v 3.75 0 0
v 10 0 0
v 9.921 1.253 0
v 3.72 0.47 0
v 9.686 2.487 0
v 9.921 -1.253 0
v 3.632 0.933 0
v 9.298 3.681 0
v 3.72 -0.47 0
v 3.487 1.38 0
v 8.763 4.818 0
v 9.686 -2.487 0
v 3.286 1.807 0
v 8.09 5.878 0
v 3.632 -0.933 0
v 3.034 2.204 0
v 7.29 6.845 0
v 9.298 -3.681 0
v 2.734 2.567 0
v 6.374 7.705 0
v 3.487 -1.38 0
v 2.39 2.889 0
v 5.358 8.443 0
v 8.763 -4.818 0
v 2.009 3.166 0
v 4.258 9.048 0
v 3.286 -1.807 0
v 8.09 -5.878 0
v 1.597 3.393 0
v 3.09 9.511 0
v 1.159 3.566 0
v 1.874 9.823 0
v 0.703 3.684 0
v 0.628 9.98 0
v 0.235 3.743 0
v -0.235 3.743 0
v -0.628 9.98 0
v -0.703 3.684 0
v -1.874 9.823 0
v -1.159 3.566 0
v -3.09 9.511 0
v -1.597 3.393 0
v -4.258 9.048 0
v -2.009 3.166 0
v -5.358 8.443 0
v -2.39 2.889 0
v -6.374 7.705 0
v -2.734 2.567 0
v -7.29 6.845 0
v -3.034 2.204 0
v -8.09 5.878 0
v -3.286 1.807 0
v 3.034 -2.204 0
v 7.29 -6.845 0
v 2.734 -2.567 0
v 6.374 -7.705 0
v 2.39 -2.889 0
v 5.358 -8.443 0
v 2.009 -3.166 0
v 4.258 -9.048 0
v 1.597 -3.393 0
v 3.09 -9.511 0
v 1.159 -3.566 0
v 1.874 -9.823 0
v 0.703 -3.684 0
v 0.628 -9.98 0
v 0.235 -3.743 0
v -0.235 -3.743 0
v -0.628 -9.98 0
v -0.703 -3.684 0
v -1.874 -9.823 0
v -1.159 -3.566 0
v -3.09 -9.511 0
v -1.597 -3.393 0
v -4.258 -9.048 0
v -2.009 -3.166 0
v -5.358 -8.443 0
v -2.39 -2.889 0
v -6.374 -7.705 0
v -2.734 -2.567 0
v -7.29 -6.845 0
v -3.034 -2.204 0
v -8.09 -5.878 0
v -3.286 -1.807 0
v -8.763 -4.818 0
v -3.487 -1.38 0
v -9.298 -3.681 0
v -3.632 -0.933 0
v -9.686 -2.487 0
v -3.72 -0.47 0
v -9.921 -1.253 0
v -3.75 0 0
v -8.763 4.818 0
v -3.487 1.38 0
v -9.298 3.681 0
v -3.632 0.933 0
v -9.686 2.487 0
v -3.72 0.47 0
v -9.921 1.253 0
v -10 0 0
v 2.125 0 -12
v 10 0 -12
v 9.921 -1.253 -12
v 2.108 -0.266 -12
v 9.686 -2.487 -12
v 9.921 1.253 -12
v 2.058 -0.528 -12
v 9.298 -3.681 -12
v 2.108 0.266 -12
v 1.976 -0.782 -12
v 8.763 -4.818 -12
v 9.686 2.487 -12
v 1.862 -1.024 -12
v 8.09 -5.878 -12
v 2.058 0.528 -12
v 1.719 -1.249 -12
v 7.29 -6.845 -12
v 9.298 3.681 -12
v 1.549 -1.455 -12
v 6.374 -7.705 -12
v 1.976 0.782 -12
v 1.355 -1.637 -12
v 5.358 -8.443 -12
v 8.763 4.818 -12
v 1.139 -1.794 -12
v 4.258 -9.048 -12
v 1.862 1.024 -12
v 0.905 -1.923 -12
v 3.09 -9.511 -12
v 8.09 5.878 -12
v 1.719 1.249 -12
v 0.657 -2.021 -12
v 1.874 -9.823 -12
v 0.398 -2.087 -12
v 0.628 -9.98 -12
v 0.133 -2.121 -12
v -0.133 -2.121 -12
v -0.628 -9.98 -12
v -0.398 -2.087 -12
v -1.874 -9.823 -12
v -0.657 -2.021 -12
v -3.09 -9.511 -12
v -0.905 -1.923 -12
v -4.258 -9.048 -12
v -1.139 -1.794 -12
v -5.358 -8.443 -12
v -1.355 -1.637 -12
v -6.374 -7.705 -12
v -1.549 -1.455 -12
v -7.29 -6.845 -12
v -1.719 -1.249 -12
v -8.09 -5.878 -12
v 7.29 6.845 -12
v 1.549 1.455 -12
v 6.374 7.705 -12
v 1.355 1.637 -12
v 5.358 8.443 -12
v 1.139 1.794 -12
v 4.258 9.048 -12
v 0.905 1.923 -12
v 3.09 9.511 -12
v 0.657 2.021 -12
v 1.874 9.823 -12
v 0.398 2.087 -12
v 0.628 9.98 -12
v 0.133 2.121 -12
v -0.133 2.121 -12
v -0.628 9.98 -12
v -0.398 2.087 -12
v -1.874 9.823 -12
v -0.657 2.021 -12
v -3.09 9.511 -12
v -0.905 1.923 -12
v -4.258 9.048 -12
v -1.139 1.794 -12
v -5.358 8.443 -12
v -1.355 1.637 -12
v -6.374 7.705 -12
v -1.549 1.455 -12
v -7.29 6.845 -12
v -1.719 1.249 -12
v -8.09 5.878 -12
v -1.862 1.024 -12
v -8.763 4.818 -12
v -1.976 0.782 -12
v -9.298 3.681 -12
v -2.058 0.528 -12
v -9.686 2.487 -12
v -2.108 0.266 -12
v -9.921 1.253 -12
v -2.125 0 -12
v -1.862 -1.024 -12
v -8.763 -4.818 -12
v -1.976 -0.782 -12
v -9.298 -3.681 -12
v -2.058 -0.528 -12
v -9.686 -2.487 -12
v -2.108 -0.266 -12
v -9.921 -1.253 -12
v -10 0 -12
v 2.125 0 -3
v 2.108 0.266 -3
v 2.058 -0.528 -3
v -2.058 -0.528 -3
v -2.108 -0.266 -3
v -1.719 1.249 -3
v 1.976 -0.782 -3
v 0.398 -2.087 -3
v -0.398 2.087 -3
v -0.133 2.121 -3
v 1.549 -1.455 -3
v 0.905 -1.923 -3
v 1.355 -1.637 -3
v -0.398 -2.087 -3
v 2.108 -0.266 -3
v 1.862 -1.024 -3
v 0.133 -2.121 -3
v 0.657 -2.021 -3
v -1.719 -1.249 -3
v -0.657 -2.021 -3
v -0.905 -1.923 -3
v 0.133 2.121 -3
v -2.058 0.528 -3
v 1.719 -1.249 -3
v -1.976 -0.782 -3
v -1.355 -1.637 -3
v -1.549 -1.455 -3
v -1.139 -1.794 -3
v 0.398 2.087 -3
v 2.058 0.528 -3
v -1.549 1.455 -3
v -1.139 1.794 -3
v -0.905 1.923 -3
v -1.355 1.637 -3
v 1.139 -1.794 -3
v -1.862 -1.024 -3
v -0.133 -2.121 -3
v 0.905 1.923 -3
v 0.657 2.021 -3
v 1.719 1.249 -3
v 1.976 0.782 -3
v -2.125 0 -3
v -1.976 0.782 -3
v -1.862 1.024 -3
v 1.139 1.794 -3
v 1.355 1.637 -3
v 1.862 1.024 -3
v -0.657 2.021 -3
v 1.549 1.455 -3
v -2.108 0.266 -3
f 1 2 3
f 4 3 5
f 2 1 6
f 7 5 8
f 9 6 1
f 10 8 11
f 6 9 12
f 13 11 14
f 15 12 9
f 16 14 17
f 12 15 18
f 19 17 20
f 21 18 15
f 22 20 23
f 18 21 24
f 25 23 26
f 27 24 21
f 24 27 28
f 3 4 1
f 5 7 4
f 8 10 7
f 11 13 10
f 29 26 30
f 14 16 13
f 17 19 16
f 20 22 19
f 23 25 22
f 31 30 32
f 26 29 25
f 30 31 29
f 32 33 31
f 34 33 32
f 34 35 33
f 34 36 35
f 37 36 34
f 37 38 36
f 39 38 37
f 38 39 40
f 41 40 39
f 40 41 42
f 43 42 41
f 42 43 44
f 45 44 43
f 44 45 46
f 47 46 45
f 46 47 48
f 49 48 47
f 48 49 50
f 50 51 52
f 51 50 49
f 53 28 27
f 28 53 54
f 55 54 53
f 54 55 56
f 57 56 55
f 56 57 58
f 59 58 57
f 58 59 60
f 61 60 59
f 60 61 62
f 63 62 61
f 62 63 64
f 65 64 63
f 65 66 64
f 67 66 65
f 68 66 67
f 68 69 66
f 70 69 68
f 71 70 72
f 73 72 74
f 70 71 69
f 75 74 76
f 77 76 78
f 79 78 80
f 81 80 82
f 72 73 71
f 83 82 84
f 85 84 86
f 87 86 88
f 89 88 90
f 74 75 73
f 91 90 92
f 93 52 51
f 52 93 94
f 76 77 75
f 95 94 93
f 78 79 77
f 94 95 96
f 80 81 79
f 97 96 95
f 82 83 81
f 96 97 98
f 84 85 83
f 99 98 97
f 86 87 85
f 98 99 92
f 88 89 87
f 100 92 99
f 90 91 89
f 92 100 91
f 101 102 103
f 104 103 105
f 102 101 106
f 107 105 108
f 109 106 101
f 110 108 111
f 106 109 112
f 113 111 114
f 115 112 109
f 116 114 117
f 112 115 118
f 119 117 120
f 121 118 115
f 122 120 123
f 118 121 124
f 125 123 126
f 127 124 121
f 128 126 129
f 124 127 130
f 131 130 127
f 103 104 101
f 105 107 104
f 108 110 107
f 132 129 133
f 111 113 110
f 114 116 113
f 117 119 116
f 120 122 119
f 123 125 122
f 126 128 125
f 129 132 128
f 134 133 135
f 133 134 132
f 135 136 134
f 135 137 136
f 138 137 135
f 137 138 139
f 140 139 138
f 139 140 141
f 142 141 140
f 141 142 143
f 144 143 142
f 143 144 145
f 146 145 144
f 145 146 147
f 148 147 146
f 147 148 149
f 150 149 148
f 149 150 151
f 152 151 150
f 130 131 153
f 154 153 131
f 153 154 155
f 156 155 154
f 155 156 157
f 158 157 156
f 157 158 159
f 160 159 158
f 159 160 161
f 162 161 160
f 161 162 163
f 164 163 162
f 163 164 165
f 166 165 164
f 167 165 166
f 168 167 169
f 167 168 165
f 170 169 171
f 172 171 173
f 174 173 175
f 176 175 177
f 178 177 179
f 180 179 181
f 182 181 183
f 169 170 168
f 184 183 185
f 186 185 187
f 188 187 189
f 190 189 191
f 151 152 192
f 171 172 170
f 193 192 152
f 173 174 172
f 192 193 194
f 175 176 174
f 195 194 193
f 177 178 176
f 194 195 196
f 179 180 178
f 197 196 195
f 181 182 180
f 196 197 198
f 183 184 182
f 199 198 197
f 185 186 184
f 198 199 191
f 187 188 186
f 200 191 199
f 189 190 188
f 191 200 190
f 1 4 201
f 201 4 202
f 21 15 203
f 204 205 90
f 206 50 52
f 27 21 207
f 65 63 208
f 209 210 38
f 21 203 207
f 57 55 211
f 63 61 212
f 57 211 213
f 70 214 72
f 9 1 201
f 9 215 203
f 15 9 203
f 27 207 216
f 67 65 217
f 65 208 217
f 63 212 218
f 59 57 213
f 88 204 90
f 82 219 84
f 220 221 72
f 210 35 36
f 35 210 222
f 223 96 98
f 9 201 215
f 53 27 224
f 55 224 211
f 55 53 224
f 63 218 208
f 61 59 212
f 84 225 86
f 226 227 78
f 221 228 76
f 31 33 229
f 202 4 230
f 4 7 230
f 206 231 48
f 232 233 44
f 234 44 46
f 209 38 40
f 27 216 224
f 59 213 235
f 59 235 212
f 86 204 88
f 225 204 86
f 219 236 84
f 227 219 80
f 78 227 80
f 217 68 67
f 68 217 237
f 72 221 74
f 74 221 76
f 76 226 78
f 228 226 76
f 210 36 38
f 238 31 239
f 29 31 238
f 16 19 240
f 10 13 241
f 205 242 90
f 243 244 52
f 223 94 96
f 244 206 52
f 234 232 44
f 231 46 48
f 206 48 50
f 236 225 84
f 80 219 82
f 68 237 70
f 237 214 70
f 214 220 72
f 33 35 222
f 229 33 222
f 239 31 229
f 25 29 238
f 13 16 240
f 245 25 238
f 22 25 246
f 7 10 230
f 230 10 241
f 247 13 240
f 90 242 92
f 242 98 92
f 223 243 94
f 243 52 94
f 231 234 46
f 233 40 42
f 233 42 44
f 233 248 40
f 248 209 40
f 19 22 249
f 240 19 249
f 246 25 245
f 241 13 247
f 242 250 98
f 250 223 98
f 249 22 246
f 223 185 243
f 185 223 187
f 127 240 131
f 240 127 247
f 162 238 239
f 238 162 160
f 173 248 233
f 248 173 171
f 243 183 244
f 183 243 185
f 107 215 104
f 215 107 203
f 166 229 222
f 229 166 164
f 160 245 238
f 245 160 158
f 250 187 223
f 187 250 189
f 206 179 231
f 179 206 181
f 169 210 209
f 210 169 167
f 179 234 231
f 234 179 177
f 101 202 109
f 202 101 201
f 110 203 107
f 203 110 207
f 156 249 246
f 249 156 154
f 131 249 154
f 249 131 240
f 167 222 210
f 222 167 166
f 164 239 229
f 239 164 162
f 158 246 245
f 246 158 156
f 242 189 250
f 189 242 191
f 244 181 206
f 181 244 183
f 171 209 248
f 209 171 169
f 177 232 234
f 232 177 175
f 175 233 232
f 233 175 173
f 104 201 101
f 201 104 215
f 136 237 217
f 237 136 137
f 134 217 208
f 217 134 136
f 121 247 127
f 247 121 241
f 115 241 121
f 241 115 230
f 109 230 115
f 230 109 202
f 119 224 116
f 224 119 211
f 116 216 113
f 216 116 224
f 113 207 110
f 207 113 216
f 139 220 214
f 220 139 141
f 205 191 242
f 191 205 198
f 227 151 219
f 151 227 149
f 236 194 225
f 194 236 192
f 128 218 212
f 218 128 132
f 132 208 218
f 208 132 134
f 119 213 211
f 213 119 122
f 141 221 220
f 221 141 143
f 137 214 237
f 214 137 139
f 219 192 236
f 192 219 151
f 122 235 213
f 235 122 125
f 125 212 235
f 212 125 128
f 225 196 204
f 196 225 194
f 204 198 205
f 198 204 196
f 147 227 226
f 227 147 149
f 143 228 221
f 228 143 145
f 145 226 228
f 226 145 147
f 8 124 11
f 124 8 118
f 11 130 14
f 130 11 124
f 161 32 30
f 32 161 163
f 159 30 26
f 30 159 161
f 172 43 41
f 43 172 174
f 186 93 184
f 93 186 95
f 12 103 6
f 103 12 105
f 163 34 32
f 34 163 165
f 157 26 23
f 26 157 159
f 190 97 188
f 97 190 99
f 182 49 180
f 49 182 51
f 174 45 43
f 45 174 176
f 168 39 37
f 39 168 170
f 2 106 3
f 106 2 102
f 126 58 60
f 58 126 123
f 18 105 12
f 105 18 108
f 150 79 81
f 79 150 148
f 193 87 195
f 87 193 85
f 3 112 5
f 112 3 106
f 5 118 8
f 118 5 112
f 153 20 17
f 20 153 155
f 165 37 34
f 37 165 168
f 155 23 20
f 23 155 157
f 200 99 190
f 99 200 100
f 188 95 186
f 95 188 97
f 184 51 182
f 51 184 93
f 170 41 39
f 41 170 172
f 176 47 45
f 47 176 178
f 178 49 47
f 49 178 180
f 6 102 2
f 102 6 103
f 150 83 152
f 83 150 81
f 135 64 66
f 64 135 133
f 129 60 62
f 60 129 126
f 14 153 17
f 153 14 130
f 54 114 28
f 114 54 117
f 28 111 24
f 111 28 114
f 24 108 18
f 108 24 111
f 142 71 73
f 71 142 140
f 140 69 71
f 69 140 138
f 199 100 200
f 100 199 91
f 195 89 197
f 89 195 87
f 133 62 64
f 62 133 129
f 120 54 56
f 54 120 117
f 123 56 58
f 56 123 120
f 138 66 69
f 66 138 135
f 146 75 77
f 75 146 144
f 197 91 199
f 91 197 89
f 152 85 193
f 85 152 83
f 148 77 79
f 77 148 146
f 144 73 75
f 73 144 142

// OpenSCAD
$fn = 50;


difference() {
	union() {
		translate(v = [0, 0, -12.0000000000]) {
			cylinder(h = 12, r = 10.0000000000);
		}
		cylinder(h = 0, r = 20.0000000000);
	}
	union() {
		translate(v = [0, 0, 0]) {
			rotate(a = [0, 0, 0]) {
				difference() {
					union() {
						#translate(v = [0, 0, -12.0000000000]) {
							cylinder(h = 12, r = 2.0000000000);
						}
						#translate(v = [0, 0, -3]) {
							cylinder(h = 3, r1 = 2.1250000000, r2 = 3.7500000000);
						}
						#translate(v = [0, 0, -12.0000000000]) {
							cylinder(h = 12, r = 2.1250000000);
						}
						#translate(v = [0, 0, -12.0000000000]) {
							cylinder(h = 12, r = 2.0000000000);
						}
					}
					union();
				}
			}
		}
	}
}
